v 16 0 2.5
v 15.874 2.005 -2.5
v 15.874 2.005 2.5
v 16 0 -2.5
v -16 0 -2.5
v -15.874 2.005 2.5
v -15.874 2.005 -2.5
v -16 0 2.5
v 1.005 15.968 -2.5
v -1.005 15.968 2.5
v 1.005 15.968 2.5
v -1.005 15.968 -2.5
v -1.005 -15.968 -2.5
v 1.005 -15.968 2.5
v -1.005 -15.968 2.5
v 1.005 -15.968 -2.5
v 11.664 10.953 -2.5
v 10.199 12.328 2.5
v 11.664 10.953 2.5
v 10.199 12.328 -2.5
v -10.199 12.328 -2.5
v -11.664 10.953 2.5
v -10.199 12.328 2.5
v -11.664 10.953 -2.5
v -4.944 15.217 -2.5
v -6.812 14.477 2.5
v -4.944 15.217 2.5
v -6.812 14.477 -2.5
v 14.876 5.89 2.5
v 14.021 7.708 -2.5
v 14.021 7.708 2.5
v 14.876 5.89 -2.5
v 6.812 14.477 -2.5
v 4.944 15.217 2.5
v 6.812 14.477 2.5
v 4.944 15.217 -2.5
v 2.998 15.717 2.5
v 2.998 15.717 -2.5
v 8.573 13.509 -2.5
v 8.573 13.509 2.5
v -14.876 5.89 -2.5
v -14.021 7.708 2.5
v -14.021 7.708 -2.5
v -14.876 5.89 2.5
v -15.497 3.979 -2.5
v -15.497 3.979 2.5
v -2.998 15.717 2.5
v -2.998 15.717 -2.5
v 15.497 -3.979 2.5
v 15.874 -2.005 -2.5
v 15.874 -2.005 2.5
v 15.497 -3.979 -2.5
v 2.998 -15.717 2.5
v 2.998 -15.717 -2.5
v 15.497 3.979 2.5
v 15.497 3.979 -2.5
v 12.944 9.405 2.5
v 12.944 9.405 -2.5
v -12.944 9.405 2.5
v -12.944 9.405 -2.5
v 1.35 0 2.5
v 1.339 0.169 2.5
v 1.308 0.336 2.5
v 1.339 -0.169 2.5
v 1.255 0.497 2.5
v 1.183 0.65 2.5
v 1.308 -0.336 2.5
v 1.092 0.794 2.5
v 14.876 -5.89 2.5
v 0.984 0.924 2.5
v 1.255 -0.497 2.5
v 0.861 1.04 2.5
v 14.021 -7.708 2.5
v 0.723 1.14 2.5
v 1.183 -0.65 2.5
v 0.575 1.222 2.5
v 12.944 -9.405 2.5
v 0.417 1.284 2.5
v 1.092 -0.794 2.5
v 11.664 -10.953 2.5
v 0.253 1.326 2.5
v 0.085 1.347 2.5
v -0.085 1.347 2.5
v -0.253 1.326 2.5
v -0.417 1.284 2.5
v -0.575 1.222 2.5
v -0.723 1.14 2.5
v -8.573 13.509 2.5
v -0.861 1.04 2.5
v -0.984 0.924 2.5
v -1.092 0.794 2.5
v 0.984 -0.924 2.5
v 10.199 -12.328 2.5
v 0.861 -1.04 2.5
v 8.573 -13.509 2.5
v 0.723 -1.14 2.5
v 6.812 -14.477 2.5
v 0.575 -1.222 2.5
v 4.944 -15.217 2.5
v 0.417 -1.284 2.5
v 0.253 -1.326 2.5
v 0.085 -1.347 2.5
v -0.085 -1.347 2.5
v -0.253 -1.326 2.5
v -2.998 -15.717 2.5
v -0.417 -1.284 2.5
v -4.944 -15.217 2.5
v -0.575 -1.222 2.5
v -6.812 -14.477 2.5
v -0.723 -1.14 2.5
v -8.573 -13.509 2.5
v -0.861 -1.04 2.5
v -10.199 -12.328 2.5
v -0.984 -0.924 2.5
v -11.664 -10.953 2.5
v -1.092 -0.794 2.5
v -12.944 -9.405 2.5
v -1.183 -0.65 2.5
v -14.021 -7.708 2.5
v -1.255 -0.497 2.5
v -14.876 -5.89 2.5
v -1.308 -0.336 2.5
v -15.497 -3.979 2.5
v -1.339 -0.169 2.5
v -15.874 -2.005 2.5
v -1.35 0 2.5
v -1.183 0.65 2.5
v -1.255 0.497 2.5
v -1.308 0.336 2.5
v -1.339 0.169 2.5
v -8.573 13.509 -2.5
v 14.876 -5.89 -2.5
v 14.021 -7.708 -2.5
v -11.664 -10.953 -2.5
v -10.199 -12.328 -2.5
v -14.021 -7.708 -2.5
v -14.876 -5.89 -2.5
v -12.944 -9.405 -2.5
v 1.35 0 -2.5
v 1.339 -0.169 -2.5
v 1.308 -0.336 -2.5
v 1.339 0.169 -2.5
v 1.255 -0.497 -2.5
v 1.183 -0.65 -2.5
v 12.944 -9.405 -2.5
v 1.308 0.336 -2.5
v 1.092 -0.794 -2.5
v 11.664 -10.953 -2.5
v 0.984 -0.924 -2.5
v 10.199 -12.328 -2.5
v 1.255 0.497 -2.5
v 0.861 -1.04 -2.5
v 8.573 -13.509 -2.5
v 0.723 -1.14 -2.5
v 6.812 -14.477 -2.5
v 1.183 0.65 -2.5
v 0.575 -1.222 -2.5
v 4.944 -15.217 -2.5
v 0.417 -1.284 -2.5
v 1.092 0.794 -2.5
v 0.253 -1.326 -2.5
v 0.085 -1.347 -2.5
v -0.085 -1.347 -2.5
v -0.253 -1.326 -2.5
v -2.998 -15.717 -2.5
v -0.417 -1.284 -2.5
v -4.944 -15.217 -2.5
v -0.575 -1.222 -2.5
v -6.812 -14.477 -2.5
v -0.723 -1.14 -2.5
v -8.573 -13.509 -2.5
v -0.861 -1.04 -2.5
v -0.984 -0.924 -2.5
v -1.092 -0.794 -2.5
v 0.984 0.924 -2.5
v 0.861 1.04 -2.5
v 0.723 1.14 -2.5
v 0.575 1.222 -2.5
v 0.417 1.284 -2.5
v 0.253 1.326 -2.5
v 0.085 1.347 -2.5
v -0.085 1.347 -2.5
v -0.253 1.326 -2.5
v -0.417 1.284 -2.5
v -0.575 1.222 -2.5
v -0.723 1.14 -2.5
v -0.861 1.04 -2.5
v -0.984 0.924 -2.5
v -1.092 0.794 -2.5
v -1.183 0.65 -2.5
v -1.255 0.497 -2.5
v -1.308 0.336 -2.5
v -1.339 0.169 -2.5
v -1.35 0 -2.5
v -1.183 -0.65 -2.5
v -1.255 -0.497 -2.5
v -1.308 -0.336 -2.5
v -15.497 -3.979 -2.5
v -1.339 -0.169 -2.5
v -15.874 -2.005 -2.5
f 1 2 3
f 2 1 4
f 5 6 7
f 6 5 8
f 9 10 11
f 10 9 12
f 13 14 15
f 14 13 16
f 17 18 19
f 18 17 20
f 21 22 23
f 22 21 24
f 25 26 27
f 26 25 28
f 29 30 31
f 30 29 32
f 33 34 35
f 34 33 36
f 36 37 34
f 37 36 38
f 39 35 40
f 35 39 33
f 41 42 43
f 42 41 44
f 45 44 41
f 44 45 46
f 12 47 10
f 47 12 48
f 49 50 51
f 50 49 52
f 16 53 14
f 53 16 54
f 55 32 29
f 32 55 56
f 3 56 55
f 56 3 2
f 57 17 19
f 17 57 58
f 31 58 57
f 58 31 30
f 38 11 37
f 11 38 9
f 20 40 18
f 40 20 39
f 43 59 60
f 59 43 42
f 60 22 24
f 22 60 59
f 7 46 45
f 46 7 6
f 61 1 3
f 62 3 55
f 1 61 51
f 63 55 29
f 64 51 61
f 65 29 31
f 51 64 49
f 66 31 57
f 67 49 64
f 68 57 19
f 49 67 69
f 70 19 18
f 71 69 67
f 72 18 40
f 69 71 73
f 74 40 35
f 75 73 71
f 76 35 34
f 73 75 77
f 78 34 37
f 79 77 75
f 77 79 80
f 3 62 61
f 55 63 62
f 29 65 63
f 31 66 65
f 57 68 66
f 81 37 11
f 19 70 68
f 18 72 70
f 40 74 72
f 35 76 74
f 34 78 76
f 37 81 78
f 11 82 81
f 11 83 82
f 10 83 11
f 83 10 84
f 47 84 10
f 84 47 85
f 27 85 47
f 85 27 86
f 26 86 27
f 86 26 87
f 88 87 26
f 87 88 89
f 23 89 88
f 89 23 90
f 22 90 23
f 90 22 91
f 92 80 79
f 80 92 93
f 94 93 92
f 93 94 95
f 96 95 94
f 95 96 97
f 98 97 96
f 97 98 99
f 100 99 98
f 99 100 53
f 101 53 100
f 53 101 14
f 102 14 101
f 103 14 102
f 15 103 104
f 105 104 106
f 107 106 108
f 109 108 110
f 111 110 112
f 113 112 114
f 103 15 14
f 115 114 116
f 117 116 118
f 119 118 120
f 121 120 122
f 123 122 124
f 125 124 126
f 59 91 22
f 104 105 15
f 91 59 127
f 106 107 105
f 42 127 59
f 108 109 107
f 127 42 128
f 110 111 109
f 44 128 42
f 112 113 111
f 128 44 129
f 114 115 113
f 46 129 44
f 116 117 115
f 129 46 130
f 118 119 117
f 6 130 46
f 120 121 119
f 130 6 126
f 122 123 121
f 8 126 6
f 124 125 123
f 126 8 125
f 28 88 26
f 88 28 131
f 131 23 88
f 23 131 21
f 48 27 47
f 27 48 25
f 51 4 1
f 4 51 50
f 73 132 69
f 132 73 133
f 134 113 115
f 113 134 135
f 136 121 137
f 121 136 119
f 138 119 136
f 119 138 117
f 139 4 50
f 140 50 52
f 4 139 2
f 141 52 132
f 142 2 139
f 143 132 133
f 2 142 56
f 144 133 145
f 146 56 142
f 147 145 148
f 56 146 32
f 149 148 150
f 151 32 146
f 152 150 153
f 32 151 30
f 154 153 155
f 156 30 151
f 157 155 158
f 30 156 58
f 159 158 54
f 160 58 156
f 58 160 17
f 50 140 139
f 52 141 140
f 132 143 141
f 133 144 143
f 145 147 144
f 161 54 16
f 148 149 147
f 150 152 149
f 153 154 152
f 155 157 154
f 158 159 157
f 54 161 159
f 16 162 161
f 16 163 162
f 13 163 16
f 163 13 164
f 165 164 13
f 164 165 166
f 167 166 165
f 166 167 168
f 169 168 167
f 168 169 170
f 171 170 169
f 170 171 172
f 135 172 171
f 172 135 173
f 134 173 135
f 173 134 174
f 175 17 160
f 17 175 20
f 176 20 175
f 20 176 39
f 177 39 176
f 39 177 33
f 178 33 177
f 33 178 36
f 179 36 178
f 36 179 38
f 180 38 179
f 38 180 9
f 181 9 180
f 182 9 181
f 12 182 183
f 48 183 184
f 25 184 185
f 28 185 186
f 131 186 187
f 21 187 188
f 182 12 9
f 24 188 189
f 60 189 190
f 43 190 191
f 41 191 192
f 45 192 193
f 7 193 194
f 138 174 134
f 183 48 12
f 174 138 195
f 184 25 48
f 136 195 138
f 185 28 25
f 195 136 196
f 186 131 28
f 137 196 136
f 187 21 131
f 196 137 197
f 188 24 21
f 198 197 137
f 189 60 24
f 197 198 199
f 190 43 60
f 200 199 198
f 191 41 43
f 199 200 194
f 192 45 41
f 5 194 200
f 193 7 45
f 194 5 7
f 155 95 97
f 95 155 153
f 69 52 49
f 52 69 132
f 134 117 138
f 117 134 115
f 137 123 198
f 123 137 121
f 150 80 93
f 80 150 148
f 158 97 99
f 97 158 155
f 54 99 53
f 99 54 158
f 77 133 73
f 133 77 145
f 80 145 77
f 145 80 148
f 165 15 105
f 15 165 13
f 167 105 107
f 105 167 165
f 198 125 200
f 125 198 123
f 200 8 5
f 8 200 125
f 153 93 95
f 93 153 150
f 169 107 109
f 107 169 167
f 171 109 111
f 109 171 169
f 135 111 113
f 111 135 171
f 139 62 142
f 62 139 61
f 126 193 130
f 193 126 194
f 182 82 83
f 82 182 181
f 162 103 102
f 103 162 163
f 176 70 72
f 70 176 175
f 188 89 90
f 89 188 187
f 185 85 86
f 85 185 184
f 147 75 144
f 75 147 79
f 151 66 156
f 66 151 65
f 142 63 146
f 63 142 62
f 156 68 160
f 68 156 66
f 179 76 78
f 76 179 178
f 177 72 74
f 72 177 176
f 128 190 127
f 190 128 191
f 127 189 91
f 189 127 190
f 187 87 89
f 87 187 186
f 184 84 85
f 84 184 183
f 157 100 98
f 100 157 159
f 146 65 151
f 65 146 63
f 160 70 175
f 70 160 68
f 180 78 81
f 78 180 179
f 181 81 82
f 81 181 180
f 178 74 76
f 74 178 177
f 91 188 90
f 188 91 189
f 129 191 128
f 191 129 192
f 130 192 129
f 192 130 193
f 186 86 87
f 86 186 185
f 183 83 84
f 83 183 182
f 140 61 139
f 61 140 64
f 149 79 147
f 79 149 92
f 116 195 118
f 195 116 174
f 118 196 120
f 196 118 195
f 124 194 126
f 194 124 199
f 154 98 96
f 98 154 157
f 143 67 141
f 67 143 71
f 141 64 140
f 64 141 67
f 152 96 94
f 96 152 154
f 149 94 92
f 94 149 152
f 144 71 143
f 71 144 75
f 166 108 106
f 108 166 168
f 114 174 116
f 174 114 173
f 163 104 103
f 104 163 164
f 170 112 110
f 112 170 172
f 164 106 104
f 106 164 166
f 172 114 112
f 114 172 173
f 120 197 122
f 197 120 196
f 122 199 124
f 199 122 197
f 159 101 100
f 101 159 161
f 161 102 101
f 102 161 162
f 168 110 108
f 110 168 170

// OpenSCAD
$fn = 50;


difference() {
	union() {
		translate(v = [0, 0, -2.5000000000]) {
			cylinder(h = 5, r = 16.0000000000);
		}
	}
	union() {
		translate(v = [0, 0, -100.0000000000]) {
			cylinder(h = 200, r = 1.3500000000);
		}
	}
}
